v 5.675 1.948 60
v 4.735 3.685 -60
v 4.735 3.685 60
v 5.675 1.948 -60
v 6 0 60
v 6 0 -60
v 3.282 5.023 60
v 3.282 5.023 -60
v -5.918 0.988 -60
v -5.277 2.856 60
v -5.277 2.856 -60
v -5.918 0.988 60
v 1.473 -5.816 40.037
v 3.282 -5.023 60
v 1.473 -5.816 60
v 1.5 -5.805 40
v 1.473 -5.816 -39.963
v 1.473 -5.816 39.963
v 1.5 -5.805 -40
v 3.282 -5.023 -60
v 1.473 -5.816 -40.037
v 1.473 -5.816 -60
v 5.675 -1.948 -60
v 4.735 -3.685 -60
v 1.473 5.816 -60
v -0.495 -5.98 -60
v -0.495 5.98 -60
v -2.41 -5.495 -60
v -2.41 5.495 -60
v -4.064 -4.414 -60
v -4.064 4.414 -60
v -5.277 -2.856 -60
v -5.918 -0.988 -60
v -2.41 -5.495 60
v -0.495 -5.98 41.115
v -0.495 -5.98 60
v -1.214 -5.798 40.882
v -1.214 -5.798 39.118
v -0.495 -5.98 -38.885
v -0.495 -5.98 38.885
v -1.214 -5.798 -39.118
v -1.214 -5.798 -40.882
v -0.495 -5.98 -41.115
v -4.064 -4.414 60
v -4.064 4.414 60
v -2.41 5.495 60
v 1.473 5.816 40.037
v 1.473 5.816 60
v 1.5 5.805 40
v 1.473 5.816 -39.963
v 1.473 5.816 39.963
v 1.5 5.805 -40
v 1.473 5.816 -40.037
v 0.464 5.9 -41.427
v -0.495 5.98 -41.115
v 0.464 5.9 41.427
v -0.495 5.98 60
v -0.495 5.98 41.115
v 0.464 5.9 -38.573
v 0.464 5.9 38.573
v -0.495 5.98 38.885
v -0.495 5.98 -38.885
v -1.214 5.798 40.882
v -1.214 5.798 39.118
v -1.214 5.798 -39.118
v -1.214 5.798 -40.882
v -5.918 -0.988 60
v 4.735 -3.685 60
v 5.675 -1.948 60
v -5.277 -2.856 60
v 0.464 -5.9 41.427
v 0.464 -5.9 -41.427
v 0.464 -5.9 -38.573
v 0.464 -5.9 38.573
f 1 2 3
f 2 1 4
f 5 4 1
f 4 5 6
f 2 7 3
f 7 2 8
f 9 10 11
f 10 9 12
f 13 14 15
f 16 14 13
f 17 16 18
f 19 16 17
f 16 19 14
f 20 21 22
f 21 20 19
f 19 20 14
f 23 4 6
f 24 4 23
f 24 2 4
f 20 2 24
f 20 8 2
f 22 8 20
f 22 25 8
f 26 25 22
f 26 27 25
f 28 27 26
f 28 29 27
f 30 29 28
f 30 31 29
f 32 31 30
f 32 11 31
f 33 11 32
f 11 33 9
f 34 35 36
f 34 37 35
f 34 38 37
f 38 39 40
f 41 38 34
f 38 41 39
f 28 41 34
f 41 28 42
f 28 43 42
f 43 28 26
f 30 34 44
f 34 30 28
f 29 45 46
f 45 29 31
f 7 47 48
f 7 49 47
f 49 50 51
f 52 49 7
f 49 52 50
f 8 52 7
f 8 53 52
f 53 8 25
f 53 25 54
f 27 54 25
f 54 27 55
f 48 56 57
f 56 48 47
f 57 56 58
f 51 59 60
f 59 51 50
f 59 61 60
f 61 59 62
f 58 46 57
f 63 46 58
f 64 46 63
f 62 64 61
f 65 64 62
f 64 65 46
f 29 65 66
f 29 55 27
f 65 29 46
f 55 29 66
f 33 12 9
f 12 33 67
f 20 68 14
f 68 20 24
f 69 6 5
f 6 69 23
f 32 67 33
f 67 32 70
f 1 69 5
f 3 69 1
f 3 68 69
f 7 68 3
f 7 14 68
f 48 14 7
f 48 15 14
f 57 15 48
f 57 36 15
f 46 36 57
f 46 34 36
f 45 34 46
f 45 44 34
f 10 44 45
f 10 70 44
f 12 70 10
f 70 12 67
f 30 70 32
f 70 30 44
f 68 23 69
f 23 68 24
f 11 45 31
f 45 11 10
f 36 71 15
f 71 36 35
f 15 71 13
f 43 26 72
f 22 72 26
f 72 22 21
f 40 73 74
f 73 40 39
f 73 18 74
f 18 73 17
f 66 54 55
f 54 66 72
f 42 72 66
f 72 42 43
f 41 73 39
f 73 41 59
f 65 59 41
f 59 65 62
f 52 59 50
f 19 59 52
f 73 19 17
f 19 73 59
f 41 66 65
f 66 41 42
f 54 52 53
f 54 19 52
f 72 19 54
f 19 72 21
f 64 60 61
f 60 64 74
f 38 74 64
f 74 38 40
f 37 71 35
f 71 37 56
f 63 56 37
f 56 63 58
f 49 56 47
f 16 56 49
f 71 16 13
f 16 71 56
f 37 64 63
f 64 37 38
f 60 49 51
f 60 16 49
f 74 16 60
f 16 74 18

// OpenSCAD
// Parameters for the central shaft
shaft_length = 120; // Length of the shaft remains unchanged
shaft_diameter = 12; // Adjusted diameter of the shaft to match the original model
hole_diameter = 3; // Diameter of the holes remains unchanged
hole_spacing = 80; // Adjusted distance between the two holes (center-to-center) to match the original model

// Function to create the central shaft
module central_shaft() {
    // Create the main cylindrical shaft
    difference() {
        cylinder(h = shaft_length, d = shaft_diameter, center = true);
        
        // Create the first hole
        translate([0, 0, -hole_spacing / 2])
            rotate([90, 0, 0])
            cylinder(h = shaft_diameter + 2, d = hole_diameter, center = true);
        
        // Create the second hole
        translate([0, 0, hole_spacing / 2])
            rotate([90, 0, 0])
            cylinder(h = shaft_diameter + 2, d = hole_diameter, center = true);
    }
}

// Render the central shaft
central_shaft();
